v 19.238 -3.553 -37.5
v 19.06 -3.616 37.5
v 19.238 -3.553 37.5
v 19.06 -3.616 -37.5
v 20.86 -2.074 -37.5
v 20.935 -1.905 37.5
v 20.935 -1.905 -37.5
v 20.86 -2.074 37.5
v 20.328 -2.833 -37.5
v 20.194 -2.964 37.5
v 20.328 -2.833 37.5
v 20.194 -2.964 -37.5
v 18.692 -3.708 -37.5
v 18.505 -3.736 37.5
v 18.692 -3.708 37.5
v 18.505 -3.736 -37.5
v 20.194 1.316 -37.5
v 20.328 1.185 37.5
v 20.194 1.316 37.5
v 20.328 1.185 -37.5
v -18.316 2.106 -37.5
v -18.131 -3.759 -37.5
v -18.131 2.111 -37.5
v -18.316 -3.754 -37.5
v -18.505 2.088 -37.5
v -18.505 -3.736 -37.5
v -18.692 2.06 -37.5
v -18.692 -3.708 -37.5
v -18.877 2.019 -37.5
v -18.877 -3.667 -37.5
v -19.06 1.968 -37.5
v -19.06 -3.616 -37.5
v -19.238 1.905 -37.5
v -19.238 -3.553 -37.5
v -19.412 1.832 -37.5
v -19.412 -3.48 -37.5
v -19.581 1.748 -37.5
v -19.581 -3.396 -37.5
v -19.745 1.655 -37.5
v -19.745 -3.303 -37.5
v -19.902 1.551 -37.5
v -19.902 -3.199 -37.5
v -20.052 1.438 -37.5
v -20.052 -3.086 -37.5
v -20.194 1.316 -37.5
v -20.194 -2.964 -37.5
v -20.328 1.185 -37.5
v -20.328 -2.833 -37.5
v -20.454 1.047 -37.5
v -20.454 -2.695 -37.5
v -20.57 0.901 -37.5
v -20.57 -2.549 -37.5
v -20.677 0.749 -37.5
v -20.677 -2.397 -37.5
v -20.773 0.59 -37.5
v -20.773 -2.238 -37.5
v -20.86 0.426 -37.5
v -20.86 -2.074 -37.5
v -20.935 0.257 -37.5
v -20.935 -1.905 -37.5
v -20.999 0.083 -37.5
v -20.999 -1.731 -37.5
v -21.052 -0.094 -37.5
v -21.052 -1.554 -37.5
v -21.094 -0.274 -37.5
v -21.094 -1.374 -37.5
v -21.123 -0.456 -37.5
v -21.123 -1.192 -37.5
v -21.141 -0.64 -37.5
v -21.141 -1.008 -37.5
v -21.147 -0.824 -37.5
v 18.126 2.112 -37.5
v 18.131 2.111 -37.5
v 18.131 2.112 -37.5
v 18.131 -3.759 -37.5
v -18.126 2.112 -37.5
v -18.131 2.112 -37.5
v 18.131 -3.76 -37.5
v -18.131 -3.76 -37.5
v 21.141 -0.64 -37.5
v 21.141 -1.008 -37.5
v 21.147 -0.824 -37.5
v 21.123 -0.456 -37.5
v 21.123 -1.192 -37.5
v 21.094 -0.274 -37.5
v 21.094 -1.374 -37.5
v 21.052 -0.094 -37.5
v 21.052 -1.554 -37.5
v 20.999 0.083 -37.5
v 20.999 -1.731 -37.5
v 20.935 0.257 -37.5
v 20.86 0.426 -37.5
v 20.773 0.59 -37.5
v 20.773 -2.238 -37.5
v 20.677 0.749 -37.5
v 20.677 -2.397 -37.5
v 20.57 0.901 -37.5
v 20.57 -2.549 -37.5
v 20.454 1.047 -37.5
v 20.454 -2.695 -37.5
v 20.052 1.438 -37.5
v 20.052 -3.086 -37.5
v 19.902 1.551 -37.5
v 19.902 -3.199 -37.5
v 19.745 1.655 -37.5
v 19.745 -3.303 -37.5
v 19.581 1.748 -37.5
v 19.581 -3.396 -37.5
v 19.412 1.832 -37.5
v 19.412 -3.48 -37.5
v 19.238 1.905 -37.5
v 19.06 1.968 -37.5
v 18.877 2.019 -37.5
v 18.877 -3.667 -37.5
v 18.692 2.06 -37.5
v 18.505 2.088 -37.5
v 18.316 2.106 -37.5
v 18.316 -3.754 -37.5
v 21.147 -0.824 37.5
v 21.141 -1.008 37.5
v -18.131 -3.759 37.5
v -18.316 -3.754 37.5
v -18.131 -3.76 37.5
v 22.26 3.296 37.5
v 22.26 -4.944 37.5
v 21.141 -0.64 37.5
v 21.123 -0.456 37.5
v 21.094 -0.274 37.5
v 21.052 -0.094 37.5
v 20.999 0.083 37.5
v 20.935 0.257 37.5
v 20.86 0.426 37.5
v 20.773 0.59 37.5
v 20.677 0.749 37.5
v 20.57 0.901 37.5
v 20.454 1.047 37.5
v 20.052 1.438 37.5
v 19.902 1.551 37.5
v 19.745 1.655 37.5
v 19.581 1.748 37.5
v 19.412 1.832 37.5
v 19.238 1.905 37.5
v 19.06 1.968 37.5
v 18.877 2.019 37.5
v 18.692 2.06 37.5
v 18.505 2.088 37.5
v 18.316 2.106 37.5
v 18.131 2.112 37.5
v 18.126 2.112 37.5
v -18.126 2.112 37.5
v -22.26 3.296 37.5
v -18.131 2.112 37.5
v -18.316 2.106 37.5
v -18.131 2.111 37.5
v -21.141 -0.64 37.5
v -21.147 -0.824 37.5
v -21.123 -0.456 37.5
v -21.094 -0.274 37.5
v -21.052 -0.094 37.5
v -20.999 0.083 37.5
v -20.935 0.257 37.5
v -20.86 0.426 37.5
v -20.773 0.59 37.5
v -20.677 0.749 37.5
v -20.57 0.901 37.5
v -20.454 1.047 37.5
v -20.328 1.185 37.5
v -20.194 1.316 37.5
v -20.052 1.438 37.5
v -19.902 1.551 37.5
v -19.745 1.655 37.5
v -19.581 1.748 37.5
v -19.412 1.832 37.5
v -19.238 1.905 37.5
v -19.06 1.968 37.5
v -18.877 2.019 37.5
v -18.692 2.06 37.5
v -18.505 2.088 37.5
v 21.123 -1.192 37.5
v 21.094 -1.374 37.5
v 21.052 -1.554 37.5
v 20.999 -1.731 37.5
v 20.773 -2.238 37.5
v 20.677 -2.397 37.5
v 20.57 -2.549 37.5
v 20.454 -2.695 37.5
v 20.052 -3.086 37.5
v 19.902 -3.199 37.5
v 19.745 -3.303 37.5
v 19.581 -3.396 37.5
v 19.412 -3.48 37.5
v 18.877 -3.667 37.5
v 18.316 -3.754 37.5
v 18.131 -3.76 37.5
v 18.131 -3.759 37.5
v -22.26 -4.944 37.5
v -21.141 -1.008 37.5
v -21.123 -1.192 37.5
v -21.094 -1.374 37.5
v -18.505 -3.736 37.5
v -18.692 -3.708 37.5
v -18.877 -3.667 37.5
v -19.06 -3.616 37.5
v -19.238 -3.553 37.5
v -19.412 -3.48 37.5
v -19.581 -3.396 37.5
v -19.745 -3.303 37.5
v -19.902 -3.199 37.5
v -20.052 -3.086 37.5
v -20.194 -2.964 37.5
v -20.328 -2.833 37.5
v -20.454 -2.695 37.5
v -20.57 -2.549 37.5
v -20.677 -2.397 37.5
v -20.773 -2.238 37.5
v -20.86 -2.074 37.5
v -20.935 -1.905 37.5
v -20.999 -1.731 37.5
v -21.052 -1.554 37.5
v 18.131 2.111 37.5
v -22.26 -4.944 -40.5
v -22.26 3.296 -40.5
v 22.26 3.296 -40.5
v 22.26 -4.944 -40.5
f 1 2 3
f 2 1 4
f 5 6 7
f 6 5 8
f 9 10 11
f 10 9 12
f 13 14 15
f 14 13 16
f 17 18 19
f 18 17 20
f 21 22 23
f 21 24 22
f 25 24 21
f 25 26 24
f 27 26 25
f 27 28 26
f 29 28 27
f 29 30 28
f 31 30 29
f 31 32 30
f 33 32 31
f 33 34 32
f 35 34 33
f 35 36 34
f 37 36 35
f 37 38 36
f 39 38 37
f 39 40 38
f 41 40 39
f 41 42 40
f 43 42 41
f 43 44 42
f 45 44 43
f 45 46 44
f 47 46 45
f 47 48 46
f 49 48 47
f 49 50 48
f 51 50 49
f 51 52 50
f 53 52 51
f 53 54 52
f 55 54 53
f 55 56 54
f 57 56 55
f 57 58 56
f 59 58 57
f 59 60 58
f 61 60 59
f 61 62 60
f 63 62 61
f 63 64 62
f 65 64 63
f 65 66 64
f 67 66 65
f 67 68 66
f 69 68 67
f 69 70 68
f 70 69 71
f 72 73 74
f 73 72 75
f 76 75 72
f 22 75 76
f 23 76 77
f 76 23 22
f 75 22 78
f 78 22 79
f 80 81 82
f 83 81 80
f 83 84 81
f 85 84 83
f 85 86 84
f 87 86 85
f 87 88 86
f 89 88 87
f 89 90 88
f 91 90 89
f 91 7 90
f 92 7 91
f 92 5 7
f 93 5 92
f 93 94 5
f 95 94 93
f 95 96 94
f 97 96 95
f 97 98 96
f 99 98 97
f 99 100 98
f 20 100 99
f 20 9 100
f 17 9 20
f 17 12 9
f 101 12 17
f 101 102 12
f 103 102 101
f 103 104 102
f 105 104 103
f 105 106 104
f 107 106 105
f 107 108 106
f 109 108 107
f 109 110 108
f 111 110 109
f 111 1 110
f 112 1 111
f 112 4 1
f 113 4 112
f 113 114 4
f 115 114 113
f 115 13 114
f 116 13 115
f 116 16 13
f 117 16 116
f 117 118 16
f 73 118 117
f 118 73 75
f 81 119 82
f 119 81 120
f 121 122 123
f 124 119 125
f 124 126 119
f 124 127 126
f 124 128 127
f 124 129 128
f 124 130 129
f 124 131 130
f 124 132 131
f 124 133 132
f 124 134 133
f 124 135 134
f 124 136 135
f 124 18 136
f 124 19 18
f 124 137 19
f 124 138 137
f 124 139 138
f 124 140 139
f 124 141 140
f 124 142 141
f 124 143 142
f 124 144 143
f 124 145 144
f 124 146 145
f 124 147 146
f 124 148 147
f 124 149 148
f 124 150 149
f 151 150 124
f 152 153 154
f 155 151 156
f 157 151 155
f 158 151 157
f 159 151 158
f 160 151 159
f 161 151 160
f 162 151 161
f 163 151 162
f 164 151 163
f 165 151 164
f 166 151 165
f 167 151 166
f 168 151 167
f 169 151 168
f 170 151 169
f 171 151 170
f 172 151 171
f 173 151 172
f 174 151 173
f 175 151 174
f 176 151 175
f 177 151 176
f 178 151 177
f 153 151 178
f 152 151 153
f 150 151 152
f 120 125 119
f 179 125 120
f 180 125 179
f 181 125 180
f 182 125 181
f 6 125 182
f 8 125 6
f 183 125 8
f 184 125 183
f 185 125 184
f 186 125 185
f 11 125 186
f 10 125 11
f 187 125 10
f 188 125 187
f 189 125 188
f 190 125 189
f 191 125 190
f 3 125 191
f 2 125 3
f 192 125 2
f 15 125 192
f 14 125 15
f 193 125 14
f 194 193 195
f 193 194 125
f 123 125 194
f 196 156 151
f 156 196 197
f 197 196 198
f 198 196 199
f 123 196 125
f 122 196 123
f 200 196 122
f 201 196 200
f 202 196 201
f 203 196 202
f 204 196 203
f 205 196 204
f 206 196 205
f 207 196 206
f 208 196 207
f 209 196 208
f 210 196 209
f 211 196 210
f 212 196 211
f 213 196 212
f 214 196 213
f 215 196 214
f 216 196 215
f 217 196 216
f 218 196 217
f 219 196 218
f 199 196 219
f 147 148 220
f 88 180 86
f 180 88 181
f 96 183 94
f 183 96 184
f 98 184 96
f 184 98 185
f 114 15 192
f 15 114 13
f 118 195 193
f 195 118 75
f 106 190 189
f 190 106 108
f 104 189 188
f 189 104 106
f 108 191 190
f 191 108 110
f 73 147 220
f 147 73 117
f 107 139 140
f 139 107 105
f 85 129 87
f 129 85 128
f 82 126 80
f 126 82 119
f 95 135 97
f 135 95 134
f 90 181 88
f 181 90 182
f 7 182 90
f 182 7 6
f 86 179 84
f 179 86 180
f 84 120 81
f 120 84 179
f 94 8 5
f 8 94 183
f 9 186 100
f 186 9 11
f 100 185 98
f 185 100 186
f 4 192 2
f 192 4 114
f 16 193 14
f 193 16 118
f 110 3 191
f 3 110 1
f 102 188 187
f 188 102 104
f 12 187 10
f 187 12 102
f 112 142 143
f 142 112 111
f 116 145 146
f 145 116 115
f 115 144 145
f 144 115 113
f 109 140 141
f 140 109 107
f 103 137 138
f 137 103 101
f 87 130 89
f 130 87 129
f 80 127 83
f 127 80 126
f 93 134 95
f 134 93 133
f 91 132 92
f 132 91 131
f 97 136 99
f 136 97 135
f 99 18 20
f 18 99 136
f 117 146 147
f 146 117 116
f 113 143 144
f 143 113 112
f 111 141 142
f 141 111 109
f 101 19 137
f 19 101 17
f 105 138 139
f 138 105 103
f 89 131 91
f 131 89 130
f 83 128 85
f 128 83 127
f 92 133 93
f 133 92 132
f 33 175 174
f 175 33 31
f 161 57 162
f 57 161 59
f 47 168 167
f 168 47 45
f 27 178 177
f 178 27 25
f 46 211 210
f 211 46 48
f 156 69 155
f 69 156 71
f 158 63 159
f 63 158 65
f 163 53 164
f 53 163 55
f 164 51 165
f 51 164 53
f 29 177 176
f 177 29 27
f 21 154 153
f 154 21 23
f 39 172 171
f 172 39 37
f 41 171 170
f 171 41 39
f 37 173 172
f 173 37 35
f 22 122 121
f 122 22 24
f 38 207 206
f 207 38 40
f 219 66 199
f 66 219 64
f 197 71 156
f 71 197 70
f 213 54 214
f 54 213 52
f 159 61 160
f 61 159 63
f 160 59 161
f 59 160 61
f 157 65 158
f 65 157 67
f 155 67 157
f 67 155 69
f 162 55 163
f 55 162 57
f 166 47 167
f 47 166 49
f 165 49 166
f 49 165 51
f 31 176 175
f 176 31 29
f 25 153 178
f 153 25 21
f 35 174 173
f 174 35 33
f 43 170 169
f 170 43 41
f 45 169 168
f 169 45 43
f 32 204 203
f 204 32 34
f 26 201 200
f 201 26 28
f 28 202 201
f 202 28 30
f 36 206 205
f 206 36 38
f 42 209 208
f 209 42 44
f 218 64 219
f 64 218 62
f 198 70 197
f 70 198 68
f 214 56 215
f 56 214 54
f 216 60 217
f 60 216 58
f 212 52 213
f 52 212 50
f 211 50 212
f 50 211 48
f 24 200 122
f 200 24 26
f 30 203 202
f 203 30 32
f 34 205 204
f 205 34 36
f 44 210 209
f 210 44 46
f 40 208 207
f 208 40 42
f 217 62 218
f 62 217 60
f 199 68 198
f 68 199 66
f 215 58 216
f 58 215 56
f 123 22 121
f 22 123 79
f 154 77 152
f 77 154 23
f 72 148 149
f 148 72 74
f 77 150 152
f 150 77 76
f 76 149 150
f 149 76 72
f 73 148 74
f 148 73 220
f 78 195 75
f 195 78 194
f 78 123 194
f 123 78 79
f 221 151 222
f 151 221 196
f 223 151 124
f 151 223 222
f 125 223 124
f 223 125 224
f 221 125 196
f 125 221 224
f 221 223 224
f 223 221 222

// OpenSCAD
module rail(x,y,z,a){
    translate([x,y,z-0.8])
    rotate([90,a,0])
    difference(){
        cylinder(h=75, d = 5.7, center = true, $fn=100);
       translate([0,-10,-40]) cube([20,20,80]);
    }
}

scale([1.06,1.03,1]){
rotate([-90,0,0])
union(){
difference(){

translate([0,0,-0.8])cube([42,75,8],true);
union(){
translate([0,0,-0.8])cube([34.21,75,5.7],true);

rail(17.1,0,0,180);
rail(-17.1,0,0,0);
}
}
translate([0,39,-0.8])cube([42,3,8], true);
}
}
